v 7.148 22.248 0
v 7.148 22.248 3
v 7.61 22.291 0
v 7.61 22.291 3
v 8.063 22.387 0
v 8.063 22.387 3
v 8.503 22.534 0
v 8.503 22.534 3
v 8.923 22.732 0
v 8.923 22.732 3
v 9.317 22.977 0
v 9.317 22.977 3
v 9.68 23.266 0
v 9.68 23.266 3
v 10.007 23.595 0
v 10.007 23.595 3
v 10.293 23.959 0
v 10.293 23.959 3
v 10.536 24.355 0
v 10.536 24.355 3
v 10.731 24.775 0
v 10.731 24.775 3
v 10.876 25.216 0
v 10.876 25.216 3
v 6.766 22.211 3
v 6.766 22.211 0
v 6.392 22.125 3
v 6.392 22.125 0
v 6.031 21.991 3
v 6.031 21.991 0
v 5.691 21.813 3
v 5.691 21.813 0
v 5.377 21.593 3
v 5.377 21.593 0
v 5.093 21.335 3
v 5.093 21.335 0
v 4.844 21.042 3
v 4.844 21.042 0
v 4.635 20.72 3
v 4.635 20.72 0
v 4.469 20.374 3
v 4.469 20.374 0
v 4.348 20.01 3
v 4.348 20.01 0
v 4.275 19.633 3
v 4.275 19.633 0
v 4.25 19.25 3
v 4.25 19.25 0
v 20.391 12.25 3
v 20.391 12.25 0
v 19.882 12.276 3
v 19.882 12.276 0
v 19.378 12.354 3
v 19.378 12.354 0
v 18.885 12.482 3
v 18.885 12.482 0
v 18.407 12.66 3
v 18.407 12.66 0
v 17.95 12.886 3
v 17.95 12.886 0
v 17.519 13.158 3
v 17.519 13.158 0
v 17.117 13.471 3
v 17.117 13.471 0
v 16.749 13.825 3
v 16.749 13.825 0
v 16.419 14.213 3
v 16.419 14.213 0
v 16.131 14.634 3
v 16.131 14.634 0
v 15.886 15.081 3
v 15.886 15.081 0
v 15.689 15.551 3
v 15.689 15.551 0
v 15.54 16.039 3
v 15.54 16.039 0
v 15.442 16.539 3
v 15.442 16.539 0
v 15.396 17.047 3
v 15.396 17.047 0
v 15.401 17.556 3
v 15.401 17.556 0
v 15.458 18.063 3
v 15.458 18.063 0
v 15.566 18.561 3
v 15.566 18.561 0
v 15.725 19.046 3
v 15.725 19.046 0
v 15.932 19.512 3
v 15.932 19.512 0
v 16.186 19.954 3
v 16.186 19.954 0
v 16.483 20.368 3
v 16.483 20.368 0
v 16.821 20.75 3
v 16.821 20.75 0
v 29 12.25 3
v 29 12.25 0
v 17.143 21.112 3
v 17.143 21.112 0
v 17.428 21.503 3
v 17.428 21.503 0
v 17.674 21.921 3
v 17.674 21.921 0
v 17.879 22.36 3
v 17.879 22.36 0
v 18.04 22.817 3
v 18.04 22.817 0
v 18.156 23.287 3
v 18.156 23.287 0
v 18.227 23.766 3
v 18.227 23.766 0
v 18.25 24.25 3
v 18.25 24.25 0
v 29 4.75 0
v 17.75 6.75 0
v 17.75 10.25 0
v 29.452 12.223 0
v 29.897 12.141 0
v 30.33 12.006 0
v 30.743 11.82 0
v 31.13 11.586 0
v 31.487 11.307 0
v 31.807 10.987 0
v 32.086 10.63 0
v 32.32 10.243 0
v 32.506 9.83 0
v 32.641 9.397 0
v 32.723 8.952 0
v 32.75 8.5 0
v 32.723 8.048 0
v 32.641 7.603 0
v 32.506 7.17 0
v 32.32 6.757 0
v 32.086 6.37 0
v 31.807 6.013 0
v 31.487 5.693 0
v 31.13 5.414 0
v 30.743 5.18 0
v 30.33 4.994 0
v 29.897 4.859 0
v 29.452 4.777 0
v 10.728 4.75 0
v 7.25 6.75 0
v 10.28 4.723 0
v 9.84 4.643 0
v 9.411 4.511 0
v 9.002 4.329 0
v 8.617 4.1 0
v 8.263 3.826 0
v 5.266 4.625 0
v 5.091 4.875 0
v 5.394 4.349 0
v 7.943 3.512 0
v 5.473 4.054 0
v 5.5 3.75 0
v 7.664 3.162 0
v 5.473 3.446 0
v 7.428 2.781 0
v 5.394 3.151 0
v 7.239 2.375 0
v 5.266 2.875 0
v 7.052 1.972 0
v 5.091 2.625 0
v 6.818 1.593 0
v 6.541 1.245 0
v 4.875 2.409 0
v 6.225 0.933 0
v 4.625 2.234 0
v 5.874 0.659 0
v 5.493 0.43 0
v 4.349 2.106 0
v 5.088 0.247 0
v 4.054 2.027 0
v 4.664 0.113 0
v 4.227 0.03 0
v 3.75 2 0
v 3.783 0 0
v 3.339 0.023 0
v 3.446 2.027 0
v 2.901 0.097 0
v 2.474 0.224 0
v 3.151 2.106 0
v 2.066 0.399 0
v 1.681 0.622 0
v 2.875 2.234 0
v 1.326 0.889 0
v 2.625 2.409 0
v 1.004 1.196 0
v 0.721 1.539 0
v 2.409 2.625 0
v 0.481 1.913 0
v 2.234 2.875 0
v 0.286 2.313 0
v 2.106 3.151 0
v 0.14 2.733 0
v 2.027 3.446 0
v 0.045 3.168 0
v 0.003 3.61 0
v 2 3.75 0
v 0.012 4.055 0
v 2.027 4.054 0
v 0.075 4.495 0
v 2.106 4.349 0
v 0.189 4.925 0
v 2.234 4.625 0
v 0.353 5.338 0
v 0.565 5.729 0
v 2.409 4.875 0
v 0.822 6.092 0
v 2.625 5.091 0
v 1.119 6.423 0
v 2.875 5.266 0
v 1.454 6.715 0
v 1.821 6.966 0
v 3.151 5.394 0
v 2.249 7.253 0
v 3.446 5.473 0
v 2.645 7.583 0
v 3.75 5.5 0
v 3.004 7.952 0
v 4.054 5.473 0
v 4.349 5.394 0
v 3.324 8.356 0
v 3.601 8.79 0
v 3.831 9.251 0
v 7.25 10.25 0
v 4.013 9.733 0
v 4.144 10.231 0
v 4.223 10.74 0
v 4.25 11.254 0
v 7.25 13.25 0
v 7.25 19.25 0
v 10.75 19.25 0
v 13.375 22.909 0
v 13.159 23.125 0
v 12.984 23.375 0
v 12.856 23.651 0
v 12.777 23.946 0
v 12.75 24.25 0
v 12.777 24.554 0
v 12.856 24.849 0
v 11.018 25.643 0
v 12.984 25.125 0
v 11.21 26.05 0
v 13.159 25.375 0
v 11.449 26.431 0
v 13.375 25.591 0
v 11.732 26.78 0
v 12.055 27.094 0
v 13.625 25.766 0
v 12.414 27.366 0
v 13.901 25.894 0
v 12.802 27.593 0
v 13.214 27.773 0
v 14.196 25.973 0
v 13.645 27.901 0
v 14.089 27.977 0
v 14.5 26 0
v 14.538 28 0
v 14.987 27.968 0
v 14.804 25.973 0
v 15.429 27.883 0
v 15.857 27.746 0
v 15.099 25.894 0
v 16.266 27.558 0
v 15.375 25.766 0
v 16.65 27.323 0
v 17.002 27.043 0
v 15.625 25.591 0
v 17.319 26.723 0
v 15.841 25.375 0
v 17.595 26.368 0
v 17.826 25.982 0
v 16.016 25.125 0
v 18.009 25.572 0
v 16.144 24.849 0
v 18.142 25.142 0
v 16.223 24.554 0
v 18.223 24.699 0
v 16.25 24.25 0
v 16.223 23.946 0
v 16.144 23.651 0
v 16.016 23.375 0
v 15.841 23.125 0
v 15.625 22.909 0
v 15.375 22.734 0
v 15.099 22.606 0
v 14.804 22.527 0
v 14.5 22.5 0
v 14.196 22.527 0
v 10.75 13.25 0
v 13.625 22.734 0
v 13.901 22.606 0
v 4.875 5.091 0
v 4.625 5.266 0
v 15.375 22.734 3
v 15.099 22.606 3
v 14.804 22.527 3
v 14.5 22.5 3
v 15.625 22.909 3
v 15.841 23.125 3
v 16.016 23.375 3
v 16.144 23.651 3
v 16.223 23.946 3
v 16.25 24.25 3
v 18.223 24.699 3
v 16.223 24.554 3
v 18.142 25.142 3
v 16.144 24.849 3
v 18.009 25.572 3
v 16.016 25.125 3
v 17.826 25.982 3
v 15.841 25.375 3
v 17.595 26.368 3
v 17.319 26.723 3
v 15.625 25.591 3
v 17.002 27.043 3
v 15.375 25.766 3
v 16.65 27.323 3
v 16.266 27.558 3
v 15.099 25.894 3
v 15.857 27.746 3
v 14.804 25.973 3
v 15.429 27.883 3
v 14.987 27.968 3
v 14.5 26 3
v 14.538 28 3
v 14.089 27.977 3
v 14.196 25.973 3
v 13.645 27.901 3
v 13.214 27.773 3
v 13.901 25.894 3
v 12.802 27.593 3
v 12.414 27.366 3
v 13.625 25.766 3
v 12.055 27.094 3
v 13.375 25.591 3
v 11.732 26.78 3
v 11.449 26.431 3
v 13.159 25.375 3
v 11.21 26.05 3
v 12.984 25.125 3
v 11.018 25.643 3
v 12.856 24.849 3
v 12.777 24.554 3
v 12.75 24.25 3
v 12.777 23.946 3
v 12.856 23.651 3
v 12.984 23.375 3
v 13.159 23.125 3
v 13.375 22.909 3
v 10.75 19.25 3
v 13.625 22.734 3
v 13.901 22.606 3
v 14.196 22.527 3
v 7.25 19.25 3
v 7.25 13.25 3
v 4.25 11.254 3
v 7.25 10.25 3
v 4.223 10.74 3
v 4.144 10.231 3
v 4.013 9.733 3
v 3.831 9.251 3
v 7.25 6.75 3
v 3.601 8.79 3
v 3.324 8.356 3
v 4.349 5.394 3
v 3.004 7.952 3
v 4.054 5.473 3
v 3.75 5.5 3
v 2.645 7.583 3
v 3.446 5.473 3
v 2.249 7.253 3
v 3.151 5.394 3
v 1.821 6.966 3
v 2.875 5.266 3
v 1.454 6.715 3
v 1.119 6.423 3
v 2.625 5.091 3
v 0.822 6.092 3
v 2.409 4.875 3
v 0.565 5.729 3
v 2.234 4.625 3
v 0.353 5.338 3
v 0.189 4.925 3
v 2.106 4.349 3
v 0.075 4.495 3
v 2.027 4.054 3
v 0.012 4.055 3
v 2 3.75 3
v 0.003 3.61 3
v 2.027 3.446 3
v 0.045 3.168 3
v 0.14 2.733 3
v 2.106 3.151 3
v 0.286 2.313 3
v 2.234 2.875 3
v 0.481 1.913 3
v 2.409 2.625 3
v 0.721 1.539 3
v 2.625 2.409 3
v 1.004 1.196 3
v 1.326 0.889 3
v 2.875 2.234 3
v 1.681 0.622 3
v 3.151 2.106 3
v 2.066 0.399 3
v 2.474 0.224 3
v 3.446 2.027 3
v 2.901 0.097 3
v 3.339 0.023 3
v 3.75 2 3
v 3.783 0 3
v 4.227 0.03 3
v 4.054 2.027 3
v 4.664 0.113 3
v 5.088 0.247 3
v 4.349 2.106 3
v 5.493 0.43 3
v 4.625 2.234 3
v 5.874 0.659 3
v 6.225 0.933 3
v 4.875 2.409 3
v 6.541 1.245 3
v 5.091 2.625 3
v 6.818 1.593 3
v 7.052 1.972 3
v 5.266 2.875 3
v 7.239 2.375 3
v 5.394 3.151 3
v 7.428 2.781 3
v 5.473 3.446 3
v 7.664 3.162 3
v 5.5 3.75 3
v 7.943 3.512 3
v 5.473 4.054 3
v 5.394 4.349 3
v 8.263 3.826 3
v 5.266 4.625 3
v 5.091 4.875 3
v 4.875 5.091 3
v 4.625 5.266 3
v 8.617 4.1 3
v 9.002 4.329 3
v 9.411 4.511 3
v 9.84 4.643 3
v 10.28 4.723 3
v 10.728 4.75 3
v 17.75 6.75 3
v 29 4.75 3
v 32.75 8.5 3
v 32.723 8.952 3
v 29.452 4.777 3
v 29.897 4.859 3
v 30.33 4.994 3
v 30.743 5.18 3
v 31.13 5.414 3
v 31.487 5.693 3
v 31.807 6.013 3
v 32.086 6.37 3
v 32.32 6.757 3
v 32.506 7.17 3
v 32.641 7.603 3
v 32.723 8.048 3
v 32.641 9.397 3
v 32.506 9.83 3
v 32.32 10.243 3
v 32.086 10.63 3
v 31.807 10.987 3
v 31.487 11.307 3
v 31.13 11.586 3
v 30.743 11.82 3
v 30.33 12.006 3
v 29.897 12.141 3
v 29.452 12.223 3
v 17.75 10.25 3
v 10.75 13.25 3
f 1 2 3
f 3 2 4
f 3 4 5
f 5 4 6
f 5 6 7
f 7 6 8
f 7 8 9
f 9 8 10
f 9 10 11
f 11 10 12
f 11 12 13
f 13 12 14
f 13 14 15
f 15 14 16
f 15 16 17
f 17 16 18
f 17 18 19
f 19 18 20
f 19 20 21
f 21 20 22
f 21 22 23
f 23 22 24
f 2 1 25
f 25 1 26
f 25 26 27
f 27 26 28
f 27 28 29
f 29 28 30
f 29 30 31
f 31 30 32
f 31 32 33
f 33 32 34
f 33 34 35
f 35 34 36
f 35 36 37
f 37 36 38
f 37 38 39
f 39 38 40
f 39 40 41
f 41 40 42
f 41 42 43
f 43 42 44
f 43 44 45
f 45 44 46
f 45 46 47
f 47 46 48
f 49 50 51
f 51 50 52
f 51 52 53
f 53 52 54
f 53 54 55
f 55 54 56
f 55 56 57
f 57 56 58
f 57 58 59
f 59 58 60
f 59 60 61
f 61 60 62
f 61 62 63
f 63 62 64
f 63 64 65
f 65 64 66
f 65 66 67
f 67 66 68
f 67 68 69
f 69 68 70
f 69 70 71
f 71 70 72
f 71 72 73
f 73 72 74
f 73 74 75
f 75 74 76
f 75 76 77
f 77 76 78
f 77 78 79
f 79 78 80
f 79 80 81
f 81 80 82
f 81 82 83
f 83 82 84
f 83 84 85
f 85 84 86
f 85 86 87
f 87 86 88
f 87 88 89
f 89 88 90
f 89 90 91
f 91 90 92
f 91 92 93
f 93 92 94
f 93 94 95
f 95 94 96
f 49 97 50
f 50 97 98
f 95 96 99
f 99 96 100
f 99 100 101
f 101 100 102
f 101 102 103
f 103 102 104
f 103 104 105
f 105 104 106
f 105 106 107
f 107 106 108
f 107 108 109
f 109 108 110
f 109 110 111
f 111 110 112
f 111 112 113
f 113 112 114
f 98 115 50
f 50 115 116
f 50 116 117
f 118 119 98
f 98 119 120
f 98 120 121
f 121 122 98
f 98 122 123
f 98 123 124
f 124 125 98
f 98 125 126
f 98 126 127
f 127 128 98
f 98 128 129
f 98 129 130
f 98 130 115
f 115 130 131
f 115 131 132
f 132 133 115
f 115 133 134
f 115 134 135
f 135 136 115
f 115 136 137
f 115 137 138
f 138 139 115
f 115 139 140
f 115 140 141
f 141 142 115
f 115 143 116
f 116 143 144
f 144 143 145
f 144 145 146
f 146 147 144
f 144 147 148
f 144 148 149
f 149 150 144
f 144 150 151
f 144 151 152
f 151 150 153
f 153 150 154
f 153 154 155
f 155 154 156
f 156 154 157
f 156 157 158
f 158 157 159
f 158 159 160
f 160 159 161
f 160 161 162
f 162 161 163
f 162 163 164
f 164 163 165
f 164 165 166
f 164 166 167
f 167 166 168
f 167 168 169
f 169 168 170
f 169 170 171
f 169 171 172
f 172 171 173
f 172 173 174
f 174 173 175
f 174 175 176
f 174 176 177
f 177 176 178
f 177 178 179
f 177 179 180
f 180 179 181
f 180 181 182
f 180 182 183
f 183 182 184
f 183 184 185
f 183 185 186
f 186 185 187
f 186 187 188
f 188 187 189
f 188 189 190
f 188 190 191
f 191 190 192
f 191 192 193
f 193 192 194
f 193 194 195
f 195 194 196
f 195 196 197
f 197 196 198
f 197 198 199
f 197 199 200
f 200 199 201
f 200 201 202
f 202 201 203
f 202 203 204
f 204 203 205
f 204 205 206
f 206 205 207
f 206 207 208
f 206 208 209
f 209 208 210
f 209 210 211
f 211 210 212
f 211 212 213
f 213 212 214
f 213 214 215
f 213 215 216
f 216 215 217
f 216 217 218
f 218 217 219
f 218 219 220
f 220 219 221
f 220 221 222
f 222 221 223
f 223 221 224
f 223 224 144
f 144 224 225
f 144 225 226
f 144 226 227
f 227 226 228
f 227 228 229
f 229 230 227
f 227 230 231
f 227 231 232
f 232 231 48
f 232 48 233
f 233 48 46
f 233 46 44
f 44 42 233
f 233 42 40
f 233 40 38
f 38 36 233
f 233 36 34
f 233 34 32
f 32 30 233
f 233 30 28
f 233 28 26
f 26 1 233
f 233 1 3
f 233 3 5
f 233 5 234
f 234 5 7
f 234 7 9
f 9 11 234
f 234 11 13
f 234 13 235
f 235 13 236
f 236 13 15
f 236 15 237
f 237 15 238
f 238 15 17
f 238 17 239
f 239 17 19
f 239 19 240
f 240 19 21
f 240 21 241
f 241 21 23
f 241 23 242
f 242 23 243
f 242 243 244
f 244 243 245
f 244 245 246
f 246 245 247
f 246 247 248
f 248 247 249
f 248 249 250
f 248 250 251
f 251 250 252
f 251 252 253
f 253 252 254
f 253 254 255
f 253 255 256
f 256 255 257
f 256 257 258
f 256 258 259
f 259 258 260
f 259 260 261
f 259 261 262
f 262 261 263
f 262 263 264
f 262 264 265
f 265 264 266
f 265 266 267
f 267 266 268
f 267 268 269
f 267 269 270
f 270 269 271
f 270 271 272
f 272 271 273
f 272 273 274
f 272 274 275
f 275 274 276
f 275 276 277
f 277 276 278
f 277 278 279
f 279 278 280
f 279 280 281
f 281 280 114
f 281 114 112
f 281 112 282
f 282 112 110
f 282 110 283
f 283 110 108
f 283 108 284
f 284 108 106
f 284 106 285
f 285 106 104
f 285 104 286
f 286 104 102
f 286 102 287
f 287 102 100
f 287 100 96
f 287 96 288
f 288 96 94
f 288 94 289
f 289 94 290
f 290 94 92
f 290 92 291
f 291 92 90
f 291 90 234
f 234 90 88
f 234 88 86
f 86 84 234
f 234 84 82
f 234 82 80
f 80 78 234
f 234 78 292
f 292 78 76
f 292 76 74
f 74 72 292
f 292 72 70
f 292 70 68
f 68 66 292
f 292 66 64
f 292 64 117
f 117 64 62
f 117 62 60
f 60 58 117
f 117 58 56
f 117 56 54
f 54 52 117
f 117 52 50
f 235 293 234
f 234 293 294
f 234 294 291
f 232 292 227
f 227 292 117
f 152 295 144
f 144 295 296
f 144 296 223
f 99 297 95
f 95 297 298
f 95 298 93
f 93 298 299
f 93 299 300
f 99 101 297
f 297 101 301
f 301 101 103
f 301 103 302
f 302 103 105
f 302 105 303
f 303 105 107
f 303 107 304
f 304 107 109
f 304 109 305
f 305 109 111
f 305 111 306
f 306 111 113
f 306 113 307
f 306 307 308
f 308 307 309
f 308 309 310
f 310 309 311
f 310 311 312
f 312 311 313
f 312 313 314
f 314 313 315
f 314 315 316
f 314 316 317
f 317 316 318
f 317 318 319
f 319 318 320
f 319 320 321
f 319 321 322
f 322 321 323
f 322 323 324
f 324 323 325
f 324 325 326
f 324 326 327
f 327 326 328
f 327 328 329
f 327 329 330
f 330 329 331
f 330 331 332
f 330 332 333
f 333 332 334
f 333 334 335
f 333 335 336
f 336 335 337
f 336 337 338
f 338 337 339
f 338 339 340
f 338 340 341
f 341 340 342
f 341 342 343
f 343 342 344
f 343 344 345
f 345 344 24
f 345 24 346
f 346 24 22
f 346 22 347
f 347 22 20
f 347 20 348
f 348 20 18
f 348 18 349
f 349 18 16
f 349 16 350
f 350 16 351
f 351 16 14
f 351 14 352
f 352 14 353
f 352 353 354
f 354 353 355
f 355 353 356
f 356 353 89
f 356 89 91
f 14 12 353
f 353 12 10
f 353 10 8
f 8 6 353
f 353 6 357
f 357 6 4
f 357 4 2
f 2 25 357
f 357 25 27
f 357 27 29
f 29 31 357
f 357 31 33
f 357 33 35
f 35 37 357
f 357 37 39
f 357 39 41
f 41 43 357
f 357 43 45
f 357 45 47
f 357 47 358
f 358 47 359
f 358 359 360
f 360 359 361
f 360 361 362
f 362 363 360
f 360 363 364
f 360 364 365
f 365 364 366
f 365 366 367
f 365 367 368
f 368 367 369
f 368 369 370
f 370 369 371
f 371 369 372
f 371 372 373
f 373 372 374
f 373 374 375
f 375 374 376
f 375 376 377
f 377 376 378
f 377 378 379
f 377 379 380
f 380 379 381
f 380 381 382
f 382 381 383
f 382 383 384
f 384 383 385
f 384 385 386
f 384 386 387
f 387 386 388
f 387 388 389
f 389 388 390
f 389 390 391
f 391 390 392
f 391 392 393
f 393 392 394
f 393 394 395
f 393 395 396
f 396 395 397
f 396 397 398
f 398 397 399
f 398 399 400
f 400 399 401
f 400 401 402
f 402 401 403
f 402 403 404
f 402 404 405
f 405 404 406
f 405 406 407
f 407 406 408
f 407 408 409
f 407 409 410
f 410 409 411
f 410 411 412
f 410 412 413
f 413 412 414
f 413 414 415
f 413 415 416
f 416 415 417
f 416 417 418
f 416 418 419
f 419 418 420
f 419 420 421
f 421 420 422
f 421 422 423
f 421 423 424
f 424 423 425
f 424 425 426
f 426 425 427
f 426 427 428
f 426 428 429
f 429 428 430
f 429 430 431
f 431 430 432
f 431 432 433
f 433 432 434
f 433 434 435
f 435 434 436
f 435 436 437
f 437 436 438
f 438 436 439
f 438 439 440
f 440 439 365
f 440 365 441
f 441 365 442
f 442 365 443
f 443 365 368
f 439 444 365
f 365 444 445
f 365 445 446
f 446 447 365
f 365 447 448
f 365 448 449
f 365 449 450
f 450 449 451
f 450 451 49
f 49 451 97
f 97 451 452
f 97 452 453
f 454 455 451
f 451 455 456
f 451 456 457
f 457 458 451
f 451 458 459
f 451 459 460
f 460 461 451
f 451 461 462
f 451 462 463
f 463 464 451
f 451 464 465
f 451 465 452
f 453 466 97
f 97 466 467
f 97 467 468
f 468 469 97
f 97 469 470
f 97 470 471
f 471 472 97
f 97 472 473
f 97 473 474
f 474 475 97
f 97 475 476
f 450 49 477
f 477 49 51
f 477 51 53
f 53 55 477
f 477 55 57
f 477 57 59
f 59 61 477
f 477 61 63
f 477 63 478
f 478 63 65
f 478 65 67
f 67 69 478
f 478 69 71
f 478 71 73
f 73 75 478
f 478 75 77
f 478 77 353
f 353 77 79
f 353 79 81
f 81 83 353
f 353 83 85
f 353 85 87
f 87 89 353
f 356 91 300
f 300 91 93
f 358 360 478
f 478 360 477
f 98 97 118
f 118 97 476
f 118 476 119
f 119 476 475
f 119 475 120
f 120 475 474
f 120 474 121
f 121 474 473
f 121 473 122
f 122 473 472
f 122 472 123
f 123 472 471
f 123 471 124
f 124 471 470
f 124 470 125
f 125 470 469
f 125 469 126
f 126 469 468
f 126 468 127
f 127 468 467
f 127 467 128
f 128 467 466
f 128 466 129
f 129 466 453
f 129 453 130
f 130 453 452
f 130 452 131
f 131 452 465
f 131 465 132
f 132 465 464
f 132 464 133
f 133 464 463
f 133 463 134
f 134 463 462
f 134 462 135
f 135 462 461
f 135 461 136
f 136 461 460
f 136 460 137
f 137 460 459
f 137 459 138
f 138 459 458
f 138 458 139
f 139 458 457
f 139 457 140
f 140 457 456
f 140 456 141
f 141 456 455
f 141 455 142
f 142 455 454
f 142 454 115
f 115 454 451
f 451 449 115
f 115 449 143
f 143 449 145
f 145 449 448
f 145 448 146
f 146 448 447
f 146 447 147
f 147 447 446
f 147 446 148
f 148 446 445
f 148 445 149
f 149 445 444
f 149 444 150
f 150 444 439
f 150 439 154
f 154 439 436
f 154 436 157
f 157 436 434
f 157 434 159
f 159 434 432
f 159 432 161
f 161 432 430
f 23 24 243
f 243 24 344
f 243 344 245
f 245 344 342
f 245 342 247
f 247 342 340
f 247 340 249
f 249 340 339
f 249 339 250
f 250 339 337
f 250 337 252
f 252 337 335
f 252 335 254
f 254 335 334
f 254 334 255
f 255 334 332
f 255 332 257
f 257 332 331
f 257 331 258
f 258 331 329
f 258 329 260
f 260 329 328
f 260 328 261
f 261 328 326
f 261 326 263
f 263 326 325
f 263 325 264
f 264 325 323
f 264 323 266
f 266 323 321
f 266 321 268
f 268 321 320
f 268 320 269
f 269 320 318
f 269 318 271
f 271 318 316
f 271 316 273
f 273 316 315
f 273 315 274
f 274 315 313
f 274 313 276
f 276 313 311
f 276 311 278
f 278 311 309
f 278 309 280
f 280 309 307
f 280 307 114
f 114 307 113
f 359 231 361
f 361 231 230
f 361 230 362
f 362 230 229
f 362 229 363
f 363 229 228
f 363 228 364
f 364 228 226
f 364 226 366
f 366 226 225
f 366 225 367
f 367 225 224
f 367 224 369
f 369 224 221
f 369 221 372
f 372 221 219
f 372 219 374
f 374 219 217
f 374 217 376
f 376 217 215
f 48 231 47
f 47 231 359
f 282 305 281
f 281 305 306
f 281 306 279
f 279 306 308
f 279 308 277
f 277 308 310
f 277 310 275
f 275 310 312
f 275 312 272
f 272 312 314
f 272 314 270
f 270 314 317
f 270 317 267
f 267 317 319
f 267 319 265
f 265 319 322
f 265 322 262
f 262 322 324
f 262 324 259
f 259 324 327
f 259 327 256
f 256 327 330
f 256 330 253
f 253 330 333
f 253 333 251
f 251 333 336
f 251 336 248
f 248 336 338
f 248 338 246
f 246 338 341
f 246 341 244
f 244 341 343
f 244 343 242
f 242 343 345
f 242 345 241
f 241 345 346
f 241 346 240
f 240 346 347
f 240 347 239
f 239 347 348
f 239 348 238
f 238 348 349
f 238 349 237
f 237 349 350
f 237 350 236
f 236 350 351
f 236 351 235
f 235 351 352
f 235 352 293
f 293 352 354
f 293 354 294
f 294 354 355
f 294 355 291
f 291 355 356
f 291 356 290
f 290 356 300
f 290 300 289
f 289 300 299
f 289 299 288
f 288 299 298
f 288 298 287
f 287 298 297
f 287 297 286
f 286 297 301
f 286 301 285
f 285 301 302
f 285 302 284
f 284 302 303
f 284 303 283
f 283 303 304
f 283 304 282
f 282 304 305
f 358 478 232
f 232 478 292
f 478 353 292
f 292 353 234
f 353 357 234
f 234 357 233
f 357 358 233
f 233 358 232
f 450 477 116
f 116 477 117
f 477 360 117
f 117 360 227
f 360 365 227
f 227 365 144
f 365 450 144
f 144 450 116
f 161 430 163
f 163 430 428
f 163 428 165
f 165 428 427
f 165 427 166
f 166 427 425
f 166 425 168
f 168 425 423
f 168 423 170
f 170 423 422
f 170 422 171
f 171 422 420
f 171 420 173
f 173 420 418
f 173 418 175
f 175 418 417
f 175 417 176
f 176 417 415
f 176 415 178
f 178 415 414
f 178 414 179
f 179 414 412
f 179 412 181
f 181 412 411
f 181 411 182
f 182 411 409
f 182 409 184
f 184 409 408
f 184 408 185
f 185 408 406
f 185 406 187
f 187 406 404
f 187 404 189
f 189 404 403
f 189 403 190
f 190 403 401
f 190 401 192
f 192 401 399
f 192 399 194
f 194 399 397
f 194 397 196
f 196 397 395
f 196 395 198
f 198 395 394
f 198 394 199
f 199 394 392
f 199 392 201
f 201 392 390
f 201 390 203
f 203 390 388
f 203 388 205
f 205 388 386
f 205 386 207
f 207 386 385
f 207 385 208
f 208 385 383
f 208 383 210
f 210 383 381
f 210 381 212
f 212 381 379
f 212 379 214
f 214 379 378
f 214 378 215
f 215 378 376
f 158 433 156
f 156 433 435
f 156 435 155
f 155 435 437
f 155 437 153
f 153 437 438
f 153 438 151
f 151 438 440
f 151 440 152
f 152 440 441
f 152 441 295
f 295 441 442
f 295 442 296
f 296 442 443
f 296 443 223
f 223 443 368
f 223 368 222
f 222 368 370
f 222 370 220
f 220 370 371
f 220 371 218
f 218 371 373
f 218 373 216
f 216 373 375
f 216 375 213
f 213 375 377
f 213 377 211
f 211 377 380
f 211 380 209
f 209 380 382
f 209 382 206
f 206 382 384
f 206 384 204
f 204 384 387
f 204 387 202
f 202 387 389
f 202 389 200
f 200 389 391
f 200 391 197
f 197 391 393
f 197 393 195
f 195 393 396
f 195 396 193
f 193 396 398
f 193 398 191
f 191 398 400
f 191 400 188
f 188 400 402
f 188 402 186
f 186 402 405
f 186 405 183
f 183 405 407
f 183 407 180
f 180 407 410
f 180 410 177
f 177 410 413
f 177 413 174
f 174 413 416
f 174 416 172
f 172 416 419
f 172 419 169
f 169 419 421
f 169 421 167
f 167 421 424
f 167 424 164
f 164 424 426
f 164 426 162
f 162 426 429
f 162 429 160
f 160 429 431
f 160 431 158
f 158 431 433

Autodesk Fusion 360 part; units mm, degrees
sketch "Sketch1" plane through (0, 0, 0) normal (0, 0, 1) x (1, 0, 0)
  line L0 (0, 0) -> (35, 0)
  line L1 (35, 0) -> (35, 40)
  line L2 (35, 40) -> (0, 40)
  line L3 (0, 40) -> (0, 0)
  dimension "d1" = 35
  dimension "d2" = 40
extrude "Extrude1" add sketch "Sketch1" along normal blind 3
sketch "Sketch2" plane through (0, 0, 3) normal (0, 0, 1) x (-1, 0, 0)
  line L0 (0, -40) -> (0, 0)
  line L1 (0, 0) -> (-35, 0)
  line L2 (-35, 0) -> (-35, -40)
  line L3 (-35, -40) -> (0, -40)
  circle A0 centre (-3.75, -3.75) radius 1.75
  dimension "d5" = 3.5
  dimension "d6" = 3.75
  dimension "d7" = 3.75
extrude "Extrude2" cut sketch "Sketch2" against normal blind 3 contours A0
fillet "Fillet1" radius 3.75 1 edges at (0, 0, 1.5)
sketch "Sketch3" plane through (0, 0, 3) normal (0, 0, 1) x (-1, 0, 0)
  arc A0 (0, -3.75) -> (-3.75, 0) centre (-3.75, -3.75) ccw
  line L0 (-3.75, 0) -> (-35, 0)
  line L1 (-35, 0) -> (-35, -40)
  line L2 (-35, -40) -> (0, -40)
  line L3 (0, -40) -> (0, -3.75)
  circle A1 centre (-3.75, -3.75) radius 1.75
  line L4 (-7.25, -10.25) -> (-17.75, -10.25)
  line L5 (-17.75, -10.25) -> (-17.75, -6.75)
  line L6 (-17.75, -6.75) -> (-7.25, -6.75)
  line L7 (-7.25, -6.75) -> (-7.25, -10.25)
  dimension "d12" = 10.5
  dimension "d13" = 3.5
  dimension "d14" = 3
  dimension "d15" = 3.5
extrude "Extrude3" cut sketch "Sketch3" against normal blind 3 contours L4 L5 L6 L7
sketch "Sketch4" plane through (0, 0, 3) normal (0, 0, 1) x (-1, 0, 0)
  line L0 (-17.75, -10.25) -> (-17.75, -6.75)
  line L1 (-17.75, -6.75) -> (-7.25, -6.75)
  line L2 (-7.25, -6.75) -> (-7.25, -10.25)
  line L3 (-7.25, -10.25) -> (-17.75, -10.25)
  arc A0 (0, -3.75) -> (-3.75, 0) centre (-3.75, -3.75) ccw
  line L4 (-3.75, 0) -> (-35, 0)
  line L5 (-35, 0) -> (-35, -40)
  line L6 (-35, -40) -> (0, -40)
  line L7 (0, -40) -> (0, -3.75)
  circle A1 centre (-3.75, -3.75) radius 1.75
  line L8 (-7.25, -13.25) -> (-10.75, -13.25)
  line L9 (-10.75, -13.25) -> (-10.75, -19.25)
  line L10 (-10.75, -19.25) -> (-7.25, -19.25)
  line L11 (-7.25, -19.25) -> (-7.25, -13.25)
  dimension "d18" = 3.5
  dimension "d19" = 6
  dimension "d20" = 0
  dimension "d21" = 3
extrude "Extrude4" cut sketch "Sketch4" against normal blind 3 contours L8 L9 L10 L11
sketch "Sketch5" plane through (0, 0, 3) normal (0, 0, 1) x (-1, 0, 0)
  line L0 (-10.75, -13.25) -> (-7.25, -13.25)
  line L1 (-7.25, -13.25) -> (-7.25, -19.25)
  line L2 (-7.25, -19.25) -> (-10.75, -19.25)
  line L3 (-10.75, -19.25) -> (-10.75, -13.25)
  line L4 (-17.75, -10.25) -> (-17.75, -6.75)
  line L5 (-17.75, -6.75) -> (-7.25, -6.75)
  line L6 (-7.25, -6.75) -> (-7.25, -10.25)
  line L7 (-7.25, -10.25) -> (-17.75, -10.25)
  arc A0 (0, -3.75) -> (-3.75, 0) centre (-3.75, -3.75) ccw
  line L8 (-3.75, 0) -> (-35, 0)
  line L9 (-35, 0) -> (-35, -40)
  line L10 (-35, -40) -> (0, -40)
  line L11 (0, -40) -> (0, -3.75)
  circle A1 centre (-3.75, -3.75) radius 1.75
  circle A2 centre (-14.5, -24.25) radius 1.75
  dimension "d24" = 3.5
  dimension "d25" = 5
  dimension "d26" = 3.75
extrude "Extrude5" cut sketch "Sketch5" against normal blind 3 contours A2
sketch "Sketch8" plane through (0, 0, 3) normal (0, 0, 1) x (-1, 0, 0)
  circle A0 centre (-14.5, -24.25) radius 1.75
  line L0 (-10.75, -13.25) -> (-7.25, -13.25)
  line L1 (-7.25, -13.25) -> (-7.25, -19.25)
  line L2 (-7.25, -19.25) -> (-10.75, -19.25)
  line L3 (-10.75, -19.25) -> (-10.75, -13.25)
  line L4 (-17.75, -10.25) -> (-17.75, -6.75)
  line L5 (-17.75, -6.75) -> (-7.25, -6.75)
  line L6 (-7.25, -6.75) -> (-7.25, -10.25)
  line L7 (-7.25, -10.25) -> (-17.75, -10.25)
  arc A1 (0, -3.75) -> (-3.75, 0) centre (-3.75, -3.75) ccw
  line L8 (-3.75, 0) -> (-35, 0)
  line L9 (-35, 0) -> (-35, -40)
  line L10 (-35, -40) -> (0, -40)
  line L11 (0, -40) -> (0, -3.75)
  circle A2 centre (-3.75, -3.75) radius 1.75
  line L12 (0, -7.5) -> (-4.25, -7.5)
  line L13 (-4.25, -7.5) -> (-4.25, -22.25)
  line L14 (-4.25, -22.25) -> (0, -22.25)
  line L15 (0, -22.25) -> (0, -7.5)
  dimension "d30" = 3.75
  dimension "d31" = 3
  dimension "d32" = 3
extrude "Extrude6" cut sketch "Sketch8" against normal blind 3 contours L11 L12 L13 L14 L15
fillet "Fillet2" radius 3.75 1 edges at (0, 7.5, 1.5)
fillet "Fillet3" radius 5 1 edges at (4.25, 7.5, 1.5)
sketch "Sketch9" plane through (0, 0, 3) normal (0, 0, 1) x (-1, 0, 0)
  arc A0 (-1.8214, -6.9661) -> (-3.75, 0) centre (-3.75, -3.75) ccw
  line L0 (-3.75, 0) -> (-35, 0)
  line L1 (-35, 0) -> (-35, -40)
  line L2 (-35, -40) -> (0, -40)
  line L3 (0, -40) -> (0, -22.25)
  line L4 (0, -22.25) -> (-4.25, -22.25)
  line L5 (-4.25, -22.25) -> (-4.25, -11.2542)
  arc A1 (-1.8214, -6.9661) -> (-4.25, -11.2542) centre (0.75, -11.2542) ccw
  circle A2 centre (-3.75, -3.75) radius 1.75
  line L6 (-17.75, -10.25) -> (-17.75, -6.75)
  line L7 (-17.75, -6.75) -> (-7.25, -6.75)
  line L8 (-7.25, -6.75) -> (-7.25, -10.25)
  line L9 (-7.25, -10.25) -> (-17.75, -10.25)
  line L10 (-10.75, -13.25) -> (-7.25, -13.25)
  line L11 (-7.25, -13.25) -> (-7.25, -19.25)
  line L12 (-7.25, -19.25) -> (-10.75, -19.25)
  line L13 (-10.75, -19.25) -> (-10.75, -13.25)
  circle A3 centre (-14.5, -24.25) radius 1.75
  line L14 (0, -22.25) -> (-10.75, -22.25)
  line L15 (-10.75, -22.25) -> (-10.75, -27)
  line L16 (-10.75, -27) -> (0, -27)
  line L17 (0, -27) -> (0, -22.25)
  dimension "d39" = 3.75
extrude "Extrude7" cut sketch "Sketch9" against normal blind 3 contours L3 L4 L14 L15 L16 L17
fillet "Fillet4" radius 3 1 edges at (4.25, 22.25, 1.5)
sketch "Sketch12" plane through (0, 0, 3) normal (0, 0, 1) x (-1, 0, 0)
  arc A0 (-7.25, -22.25) -> (-4.25, -19.25) centre (-7.25, -19.25) ccw
  line L0 (-4.25, -19.25) -> (-4.25, -11.2542)
  arc A1 (-1.8214, -6.9661) -> (-4.25, -11.2542) centre (0.75, -11.2542) ccw
  arc A2 (-1.8214, -6.9661) -> (-3.75, 0) centre (-3.75, -3.75) ccw
  line L1 (-3.75, 0) -> (-35, 0)
  line L2 (-35, 0) -> (-35, -40)
  line L3 (-35, -40) -> (0, -40)
  line L4 (0, -40) -> (0, -27)
  line L5 (0, -27) -> (-10.75, -27)
  line L6 (-10.75, -27) -> (-10.75, -22.25)
  line L7 (-10.75, -22.25) -> (-7.25, -22.25)
  circle A3 centre (-14.5, -24.25) radius 1.75
  line L8 (-10.75, -13.25) -> (-7.25, -13.25)
  line L9 (-7.25, -13.25) -> (-7.25, -19.25)
  line L10 (-7.25, -19.25) -> (-10.75, -19.25)
  line L11 (-10.75, -19.25) -> (-10.75, -13.25)
  line L12 (-17.75, -10.25) -> (-17.75, -6.75)
  line L13 (-17.75, -6.75) -> (-7.25, -6.75)
  line L14 (-7.25, -6.75) -> (-7.25, -10.25)
  line L15 (-7.25, -10.25) -> (-17.75, -10.25)
  circle A4 centre (-3.75, -3.75) radius 1.75
  line L16 (-10.75, -27) -> (0, -27)
  line L17 (0, -27) -> (0, -40)
  line L18 (0, -40) -> (-10.75, -40)
  line L19 (-10.75, -40) -> (-10.75, -27)
extrude "Extrude9" cut sketch "Sketch12" against normal blind 3 contours L3 L4 L5 L16 L17 L18 L19
sketch "Sketch13" plane through (0, 0, 3) normal (0, 0, 1) x (-1, 0, 0)
  circle A0 centre (-3.75, -3.75) radius 1.75
  line L0 (-17.75, -10.25) -> (-17.75, -6.75)
  line L1 (-17.75, -6.75) -> (-7.25, -6.75)
  line L2 (-7.25, -6.75) -> (-7.25, -10.25)
  line L3 (-7.25, -10.25) -> (-17.75, -10.25)
  line L4 (-10.75, -13.25) -> (-7.25, -13.25)
  line L5 (-7.25, -13.25) -> (-7.25, -19.25)
  line L6 (-7.25, -19.25) -> (-10.75, -19.25)
  line L7 (-10.75, -19.25) -> (-10.75, -13.25)
  circle A1 centre (-14.5, -24.25) radius 1.75
  line L8 (-10.75, -40) -> (-10.75, -22.25)
  line L9 (-10.75, -22.25) -> (-7.25, -22.25)
  arc A2 (-7.25, -22.25) -> (-4.25, -19.25) centre (-7.25, -19.25) ccw
  line L10 (-4.25, -19.25) -> (-4.25, -11.2542)
  arc A3 (-1.8214, -6.9661) -> (-4.25, -11.2542) centre (0.75, -11.2542) ccw
  arc A4 (-1.8214, -6.9661) -> (-3.75, 0) centre (-3.75, -3.75) ccw
  line L11 (-3.75, 0) -> (-35, 0)
  line L12 (-35, 0) -> (-35, -40)
  line L13 (-35, -40) -> (-10.75, -40)
  line L14 (-35, -40) -> (-18.25, -40)
  line L15 (-18.25, -40) -> (-18.25, -22.25)
  line L16 (-18.25, -22.25) -> (-35, -22.25)
  line L17 (-35, -22.25) -> (-35, -40)
  dimension "d48" = 3.75
extrude "Extrude10" cut sketch "Sketch13" against normal blind 3 contours L12 L13 L14 L15 L16 L17
sketch "Sketch14" plane through (0, 0, 3) normal (0, 0, 1) x (-1, 0, 0)
  line L0 (-35, -22.25) -> (-18.25, -22.25)
  line L1 (-18.25, -22.25) -> (-18.25, -40)
  line L2 (-18.25, -40) -> (-10.75, -40)
  line L3 (-10.75, -40) -> (-10.75, -22.25)
  line L4 (-10.75, -22.25) -> (-7.25, -22.25)
  arc A0 (-7.25, -22.25) -> (-4.25, -19.25) centre (-7.25, -19.25) ccw
  line L5 (-4.25, -19.25) -> (-4.25, -11.2542)
  arc A1 (-1.8214, -6.9661) -> (-4.25, -11.2542) centre (0.75, -11.2542) ccw
  arc A2 (-1.8214, -6.9661) -> (-3.75, 0) centre (-3.75, -3.75) ccw
  line L6 (-3.75, 0) -> (-35, 0)
  line L7 (-35, 0) -> (-35, -22.25)
  circle A3 centre (-14.5, -24.25) radius 1.75
  line L8 (-10.75, -13.25) -> (-7.25, -13.25)
  line L9 (-7.25, -13.25) -> (-7.25, -19.25)
  line L10 (-7.25, -19.25) -> (-10.75, -19.25)
  line L11 (-10.75, -19.25) -> (-10.75, -13.25)
  line L12 (-17.75, -10.25) -> (-17.75, -6.75)
  line L13 (-17.75, -6.75) -> (-7.25, -6.75)
  line L14 (-7.25, -6.75) -> (-7.25, -10.25)
  line L15 (-7.25, -10.25) -> (-17.75, -10.25)
  circle A4 centre (-3.75, -3.75) radius 1.75
  line L16 (-10.75, -40) -> (-18.25, -40)
  line L17 (-18.25, -40) -> (-18.25, -28)
  line L18 (-18.25, -28) -> (-10.75, -28)
  line L19 (-10.75, -28) -> (-10.75, -40)
  dimension "d51" = 3.75
extrude "Extrude11" cut sketch "Sketch14" against normal blind 3 contours L1 L2 L3 L16 L17 L18 L19
fillet "Fillet5" radius 3.75 1 edges at (10.75, 28, 1.5)
fillet "Fillet6" radius 3.75 1 edges at (18.25, 28, 1.5)
sketch "Sketch15" plane through (0, 0, 3) normal (0, 0, 1) x (-1, 0, 0)
  circle A0 centre (-3.75, -3.75) radius 1.75
  line L0 (-17.75, -10.25) -> (-17.75, -6.75)
  line L1 (-17.75, -6.75) -> (-7.25, -6.75)
  line L2 (-7.25, -6.75) -> (-7.25, -10.25)
  line L3 (-7.25, -10.25) -> (-17.75, -10.25)
  line L4 (-10.75, -13.25) -> (-7.25, -13.25)
  line L5 (-7.25, -13.25) -> (-7.25, -19.25)
  line L6 (-7.25, -19.25) -> (-10.75, -19.25)
  line L7 (-10.75, -19.25) -> (-10.75, -13.25)
  circle A1 centre (-14.5, -24.25) radius 1.75
  arc A2 (-18.25, -24.25) -> (-10.75, -24.25) centre (-14.5, -24.25) ccw
  line L8 (-10.75, -24.25) -> (-10.75, -22.25)
  line L9 (-10.75, -22.25) -> (-7.25, -22.25)
  arc A3 (-7.25, -22.25) -> (-4.25, -19.25) centre (-7.25, -19.25) ccw
  line L10 (-4.25, -19.25) -> (-4.25, -11.2542)
  arc A4 (-1.8214, -6.9661) -> (-4.25, -11.2542) centre (0.75, -11.2542) ccw
  arc A5 (-1.8214, -6.9661) -> (-3.75, 0) centre (-3.75, -3.75) ccw
  line L11 (-3.75, 0) -> (-35, 0)
  line L12 (-35, 0) -> (-35, -22.25)
  line L13 (-35, -22.25) -> (-18.25, -22.25)
  line L14 (-18.25, -22.25) -> (-18.25, -24.25)
  line L15 (-7.5, 0) -> (-35, 0)
  line L16 (-35, 0) -> (-35, -4.75)
  line L17 (-35, -4.75) -> (-7.5, -4.75)
  line L18 (-7.5, -4.75) -> (-7.5, 0)
  dimension "d58" = 2
  dimension "d59" = 3.75
extrude "Extrude12" cut sketch "Sketch15" against normal blind 3 contours L11 L12 L15 L16 L17 L18
fillet "Fillet7" radius 3.75 1 edges at (7.5, 0, 1.5)
fillet "Fillet8" radius 3.75 1 edges at (7.5, 4.75, 1.5)
sketch "Sketch16" plane through (0, 0, 3) normal (0, 0, 1) x (-1, 0, 0)
  circle A0 centre (-14.5, -24.25) radius 1.75
  line L0 (-10.75, -13.25) -> (-7.25, -13.25)
  line L1 (-7.25, -13.25) -> (-7.25, -19.25)
  line L2 (-7.25, -19.25) -> (-10.75, -19.25)
  line L3 (-10.75, -19.25) -> (-10.75, -13.25)
  line L4 (-17.75, -10.25) -> (-17.75, -6.75)
  line L5 (-17.75, -6.75) -> (-7.25, -6.75)
  line L6 (-7.25, -6.75) -> (-7.25, -10.25)
  line L7 (-7.25, -10.25) -> (-17.75, -10.25)
  circle A1 centre (-3.75, -3.75) radius 1.75
  arc A2 (-10.7276, -4.75) -> (-7.2388, -2.375) centre (-10.7276, -1) ccw
  line L8 (-10.7276, -4.75) -> (-35, -4.75)
  line L9 (-35, -4.75) -> (-35, -22.25)
  line L10 (-35, -22.25) -> (-18.25, -22.25)
  line L11 (-18.25, -22.25) -> (-18.25, -24.25)
  arc A3 (-18.25, -24.25) -> (-10.75, -24.25) centre (-14.5, -24.25) ccw
  line L12 (-10.75, -24.25) -> (-10.75, -22.25)
  line L13 (-10.75, -22.25) -> (-7.25, -22.25)
  arc A4 (-7.25, -22.25) -> (-4.25, -19.25) centre (-7.25, -19.25) ccw
  line L14 (-4.25, -19.25) -> (-4.25, -11.2542)
  arc A5 (-1.8214, -6.9661) -> (-4.25, -11.2542) centre (0.75, -11.2542) ccw
  arc A6 (-1.8214, -6.9661) -> (-7.2388, -2.375) centre (-3.75, -3.75) ccw
  line L15 (-32.75, -4.75) -> (-35, -4.75)
  line L16 (-35, -4.75) -> (-35, -22.25)
  line L17 (-35, -22.25) -> (-32.75, -22.25)
  line L18 (-32.75, -22.25) -> (-32.75, -4.75)
  dimension "d66" = 15
extrude "Extrude13" cut sketch "Sketch16" against normal blind 3 contours L8 L9 L10 L15 L16 L17 L18
sketch "Sketch17" plane through (0, 0, 3) normal (0, 0, 1) x (-1, 0, 0)
  line L0 (-32.75, -4.75) -> (-32.75, -22.25)
  line L1 (-32.75, -22.25) -> (-18.25, -22.25)
  line L2 (-18.25, -22.25) -> (-18.25, -24.25)
  arc A0 (-18.25, -24.25) -> (-10.75, -24.25) centre (-14.5, -24.25) ccw
  line L3 (-10.75, -24.25) -> (-10.75, -22.25)
  line L4 (-10.75, -22.25) -> (-7.25, -22.25)
  arc A1 (-7.25, -22.25) -> (-4.25, -19.25) centre (-7.25, -19.25) ccw
  line L5 (-4.25, -19.25) -> (-4.25, -11.2542)
  arc A2 (-1.8214, -6.9661) -> (-4.25, -11.2542) centre (0.75, -11.2542) ccw
  arc A3 (-1.8214, -6.9661) -> (-7.2388, -2.375) centre (-3.75, -3.75) ccw
  arc A4 (-10.7276, -4.75) -> (-7.2388, -2.375) centre (-10.7276, -1) ccw
  line L6 (-10.7276, -4.75) -> (-32.75, -4.75)
  circle A5 centre (-14.5, -24.25) radius 1.75
  line L7 (-10.75, -13.25) -> (-7.25, -13.25)
  line L8 (-7.25, -13.25) -> (-7.25, -19.25)
  line L9 (-7.25, -19.25) -> (-10.75, -19.25)
  line L10 (-10.75, -19.25) -> (-10.75, -13.25)
  line L11 (-17.75, -10.25) -> (-17.75, -6.75)
  line L12 (-17.75, -6.75) -> (-7.25, -6.75)
  line L13 (-7.25, -6.75) -> (-7.25, -10.25)
  line L14 (-7.25, -10.25) -> (-17.75, -10.25)
  circle A6 centre (-3.75, -3.75) radius 1.75
  line L15 (-32.75, -22.25) -> (-18.25, -22.25)
  line L16 (-18.25, -22.25) -> (-18.25, -12.25)
  line L17 (-18.25, -12.25) -> (-32.75, -12.25)
  line L18 (-32.75, -12.25) -> (-32.75, -22.25)
  dimension "d69" = 2
extrude "Extrude14" cut sketch "Sketch17" against normal blind 3 contours L0 L1 L15 L16 L17 L18
fillet "Fillet9" radius 3.75 1 edges at (32.75, 12.25, 1.5)
fillet "Fillet10" radius 3.75 1 edges at (32.75, 4.75, 1.5)
sketch "Sketch18" plane through (0, 0, 3) normal (0, 0, 1) x (-1, 0, 0)
  arc A0 (-29, -4.75) -> (-29, -12.25) centre (-29, -8.5) ccw
  line L0 (-29, -12.25) -> (-18.25, -12.25)
  line L1 (-18.25, -12.25) -> (-18.25, -24.25)
  arc A1 (-18.25, -24.25) -> (-10.75, -24.25) centre (-14.5, -24.25) ccw
  line L2 (-10.75, -24.25) -> (-10.75, -22.25)
  line L3 (-10.75, -22.25) -> (-7.25, -22.25)
  arc A2 (-7.25, -22.25) -> (-4.25, -19.25) centre (-7.25, -19.25) ccw
  line L4 (-4.25, -19.25) -> (-4.25, -11.2542)
  arc A3 (-1.8214, -6.9661) -> (-4.25, -11.2542) centre (0.75, -11.2542) ccw
  arc A4 (-1.8214, -6.9661) -> (-7.2388, -2.375) centre (-3.75, -3.75) ccw
  arc A5 (-10.7276, -4.75) -> (-7.2388, -2.375) centre (-10.7276, -1) ccw
  line L5 (-10.7276, -4.75) -> (-29, -4.75)
  circle A6 centre (-14.5, -24.25) radius 1.75
  line L6 (-10.75, -13.25) -> (-7.25, -13.25)
  line L7 (-7.25, -13.25) -> (-7.25, -19.25)
  line L8 (-7.25, -19.25) -> (-10.75, -19.25)
  line L9 (-10.75, -19.25) -> (-10.75, -13.25)
  line L10 (-17.75, -10.25) -> (-17.75, -6.75)
  line L11 (-17.75, -6.75) -> (-7.25, -6.75)
  line L12 (-7.25, -6.75) -> (-7.25, -10.25)
  line L13 (-7.25, -10.25) -> (-17.75, -10.25)
  circle A7 centre (-3.75, -3.75) radius 1.75
  line L14 (-18.25, -12.25) -> (-12.75, -12.25)
  line L15 (-12.75, -12.25) -> (-12.75, -19.25)
  line L16 (-12.75, -19.25) -> (-18.25, -19.25)
  line L17 (-18.25, -19.25) -> (-18.25, -12.25)
  dimension "d76" = 2
extrude "Extrude15" cut sketch "Sketch18" against normal blind 3 contours L1 L14 L15 L16 L17
fillet "Fillet11" radius 5 1 edges at (18.25, 19.25, 1.5)
fillet "Fillet12" radius 5 1 edges at (12.75, 19.25, 1.5)
fillet "Fillet13" radius 5 1 edges at (12.75, 12.25, 1.5)
fillet "Fillet14" radius 4 1 edges at (10.75, 22.25, 1.5)
